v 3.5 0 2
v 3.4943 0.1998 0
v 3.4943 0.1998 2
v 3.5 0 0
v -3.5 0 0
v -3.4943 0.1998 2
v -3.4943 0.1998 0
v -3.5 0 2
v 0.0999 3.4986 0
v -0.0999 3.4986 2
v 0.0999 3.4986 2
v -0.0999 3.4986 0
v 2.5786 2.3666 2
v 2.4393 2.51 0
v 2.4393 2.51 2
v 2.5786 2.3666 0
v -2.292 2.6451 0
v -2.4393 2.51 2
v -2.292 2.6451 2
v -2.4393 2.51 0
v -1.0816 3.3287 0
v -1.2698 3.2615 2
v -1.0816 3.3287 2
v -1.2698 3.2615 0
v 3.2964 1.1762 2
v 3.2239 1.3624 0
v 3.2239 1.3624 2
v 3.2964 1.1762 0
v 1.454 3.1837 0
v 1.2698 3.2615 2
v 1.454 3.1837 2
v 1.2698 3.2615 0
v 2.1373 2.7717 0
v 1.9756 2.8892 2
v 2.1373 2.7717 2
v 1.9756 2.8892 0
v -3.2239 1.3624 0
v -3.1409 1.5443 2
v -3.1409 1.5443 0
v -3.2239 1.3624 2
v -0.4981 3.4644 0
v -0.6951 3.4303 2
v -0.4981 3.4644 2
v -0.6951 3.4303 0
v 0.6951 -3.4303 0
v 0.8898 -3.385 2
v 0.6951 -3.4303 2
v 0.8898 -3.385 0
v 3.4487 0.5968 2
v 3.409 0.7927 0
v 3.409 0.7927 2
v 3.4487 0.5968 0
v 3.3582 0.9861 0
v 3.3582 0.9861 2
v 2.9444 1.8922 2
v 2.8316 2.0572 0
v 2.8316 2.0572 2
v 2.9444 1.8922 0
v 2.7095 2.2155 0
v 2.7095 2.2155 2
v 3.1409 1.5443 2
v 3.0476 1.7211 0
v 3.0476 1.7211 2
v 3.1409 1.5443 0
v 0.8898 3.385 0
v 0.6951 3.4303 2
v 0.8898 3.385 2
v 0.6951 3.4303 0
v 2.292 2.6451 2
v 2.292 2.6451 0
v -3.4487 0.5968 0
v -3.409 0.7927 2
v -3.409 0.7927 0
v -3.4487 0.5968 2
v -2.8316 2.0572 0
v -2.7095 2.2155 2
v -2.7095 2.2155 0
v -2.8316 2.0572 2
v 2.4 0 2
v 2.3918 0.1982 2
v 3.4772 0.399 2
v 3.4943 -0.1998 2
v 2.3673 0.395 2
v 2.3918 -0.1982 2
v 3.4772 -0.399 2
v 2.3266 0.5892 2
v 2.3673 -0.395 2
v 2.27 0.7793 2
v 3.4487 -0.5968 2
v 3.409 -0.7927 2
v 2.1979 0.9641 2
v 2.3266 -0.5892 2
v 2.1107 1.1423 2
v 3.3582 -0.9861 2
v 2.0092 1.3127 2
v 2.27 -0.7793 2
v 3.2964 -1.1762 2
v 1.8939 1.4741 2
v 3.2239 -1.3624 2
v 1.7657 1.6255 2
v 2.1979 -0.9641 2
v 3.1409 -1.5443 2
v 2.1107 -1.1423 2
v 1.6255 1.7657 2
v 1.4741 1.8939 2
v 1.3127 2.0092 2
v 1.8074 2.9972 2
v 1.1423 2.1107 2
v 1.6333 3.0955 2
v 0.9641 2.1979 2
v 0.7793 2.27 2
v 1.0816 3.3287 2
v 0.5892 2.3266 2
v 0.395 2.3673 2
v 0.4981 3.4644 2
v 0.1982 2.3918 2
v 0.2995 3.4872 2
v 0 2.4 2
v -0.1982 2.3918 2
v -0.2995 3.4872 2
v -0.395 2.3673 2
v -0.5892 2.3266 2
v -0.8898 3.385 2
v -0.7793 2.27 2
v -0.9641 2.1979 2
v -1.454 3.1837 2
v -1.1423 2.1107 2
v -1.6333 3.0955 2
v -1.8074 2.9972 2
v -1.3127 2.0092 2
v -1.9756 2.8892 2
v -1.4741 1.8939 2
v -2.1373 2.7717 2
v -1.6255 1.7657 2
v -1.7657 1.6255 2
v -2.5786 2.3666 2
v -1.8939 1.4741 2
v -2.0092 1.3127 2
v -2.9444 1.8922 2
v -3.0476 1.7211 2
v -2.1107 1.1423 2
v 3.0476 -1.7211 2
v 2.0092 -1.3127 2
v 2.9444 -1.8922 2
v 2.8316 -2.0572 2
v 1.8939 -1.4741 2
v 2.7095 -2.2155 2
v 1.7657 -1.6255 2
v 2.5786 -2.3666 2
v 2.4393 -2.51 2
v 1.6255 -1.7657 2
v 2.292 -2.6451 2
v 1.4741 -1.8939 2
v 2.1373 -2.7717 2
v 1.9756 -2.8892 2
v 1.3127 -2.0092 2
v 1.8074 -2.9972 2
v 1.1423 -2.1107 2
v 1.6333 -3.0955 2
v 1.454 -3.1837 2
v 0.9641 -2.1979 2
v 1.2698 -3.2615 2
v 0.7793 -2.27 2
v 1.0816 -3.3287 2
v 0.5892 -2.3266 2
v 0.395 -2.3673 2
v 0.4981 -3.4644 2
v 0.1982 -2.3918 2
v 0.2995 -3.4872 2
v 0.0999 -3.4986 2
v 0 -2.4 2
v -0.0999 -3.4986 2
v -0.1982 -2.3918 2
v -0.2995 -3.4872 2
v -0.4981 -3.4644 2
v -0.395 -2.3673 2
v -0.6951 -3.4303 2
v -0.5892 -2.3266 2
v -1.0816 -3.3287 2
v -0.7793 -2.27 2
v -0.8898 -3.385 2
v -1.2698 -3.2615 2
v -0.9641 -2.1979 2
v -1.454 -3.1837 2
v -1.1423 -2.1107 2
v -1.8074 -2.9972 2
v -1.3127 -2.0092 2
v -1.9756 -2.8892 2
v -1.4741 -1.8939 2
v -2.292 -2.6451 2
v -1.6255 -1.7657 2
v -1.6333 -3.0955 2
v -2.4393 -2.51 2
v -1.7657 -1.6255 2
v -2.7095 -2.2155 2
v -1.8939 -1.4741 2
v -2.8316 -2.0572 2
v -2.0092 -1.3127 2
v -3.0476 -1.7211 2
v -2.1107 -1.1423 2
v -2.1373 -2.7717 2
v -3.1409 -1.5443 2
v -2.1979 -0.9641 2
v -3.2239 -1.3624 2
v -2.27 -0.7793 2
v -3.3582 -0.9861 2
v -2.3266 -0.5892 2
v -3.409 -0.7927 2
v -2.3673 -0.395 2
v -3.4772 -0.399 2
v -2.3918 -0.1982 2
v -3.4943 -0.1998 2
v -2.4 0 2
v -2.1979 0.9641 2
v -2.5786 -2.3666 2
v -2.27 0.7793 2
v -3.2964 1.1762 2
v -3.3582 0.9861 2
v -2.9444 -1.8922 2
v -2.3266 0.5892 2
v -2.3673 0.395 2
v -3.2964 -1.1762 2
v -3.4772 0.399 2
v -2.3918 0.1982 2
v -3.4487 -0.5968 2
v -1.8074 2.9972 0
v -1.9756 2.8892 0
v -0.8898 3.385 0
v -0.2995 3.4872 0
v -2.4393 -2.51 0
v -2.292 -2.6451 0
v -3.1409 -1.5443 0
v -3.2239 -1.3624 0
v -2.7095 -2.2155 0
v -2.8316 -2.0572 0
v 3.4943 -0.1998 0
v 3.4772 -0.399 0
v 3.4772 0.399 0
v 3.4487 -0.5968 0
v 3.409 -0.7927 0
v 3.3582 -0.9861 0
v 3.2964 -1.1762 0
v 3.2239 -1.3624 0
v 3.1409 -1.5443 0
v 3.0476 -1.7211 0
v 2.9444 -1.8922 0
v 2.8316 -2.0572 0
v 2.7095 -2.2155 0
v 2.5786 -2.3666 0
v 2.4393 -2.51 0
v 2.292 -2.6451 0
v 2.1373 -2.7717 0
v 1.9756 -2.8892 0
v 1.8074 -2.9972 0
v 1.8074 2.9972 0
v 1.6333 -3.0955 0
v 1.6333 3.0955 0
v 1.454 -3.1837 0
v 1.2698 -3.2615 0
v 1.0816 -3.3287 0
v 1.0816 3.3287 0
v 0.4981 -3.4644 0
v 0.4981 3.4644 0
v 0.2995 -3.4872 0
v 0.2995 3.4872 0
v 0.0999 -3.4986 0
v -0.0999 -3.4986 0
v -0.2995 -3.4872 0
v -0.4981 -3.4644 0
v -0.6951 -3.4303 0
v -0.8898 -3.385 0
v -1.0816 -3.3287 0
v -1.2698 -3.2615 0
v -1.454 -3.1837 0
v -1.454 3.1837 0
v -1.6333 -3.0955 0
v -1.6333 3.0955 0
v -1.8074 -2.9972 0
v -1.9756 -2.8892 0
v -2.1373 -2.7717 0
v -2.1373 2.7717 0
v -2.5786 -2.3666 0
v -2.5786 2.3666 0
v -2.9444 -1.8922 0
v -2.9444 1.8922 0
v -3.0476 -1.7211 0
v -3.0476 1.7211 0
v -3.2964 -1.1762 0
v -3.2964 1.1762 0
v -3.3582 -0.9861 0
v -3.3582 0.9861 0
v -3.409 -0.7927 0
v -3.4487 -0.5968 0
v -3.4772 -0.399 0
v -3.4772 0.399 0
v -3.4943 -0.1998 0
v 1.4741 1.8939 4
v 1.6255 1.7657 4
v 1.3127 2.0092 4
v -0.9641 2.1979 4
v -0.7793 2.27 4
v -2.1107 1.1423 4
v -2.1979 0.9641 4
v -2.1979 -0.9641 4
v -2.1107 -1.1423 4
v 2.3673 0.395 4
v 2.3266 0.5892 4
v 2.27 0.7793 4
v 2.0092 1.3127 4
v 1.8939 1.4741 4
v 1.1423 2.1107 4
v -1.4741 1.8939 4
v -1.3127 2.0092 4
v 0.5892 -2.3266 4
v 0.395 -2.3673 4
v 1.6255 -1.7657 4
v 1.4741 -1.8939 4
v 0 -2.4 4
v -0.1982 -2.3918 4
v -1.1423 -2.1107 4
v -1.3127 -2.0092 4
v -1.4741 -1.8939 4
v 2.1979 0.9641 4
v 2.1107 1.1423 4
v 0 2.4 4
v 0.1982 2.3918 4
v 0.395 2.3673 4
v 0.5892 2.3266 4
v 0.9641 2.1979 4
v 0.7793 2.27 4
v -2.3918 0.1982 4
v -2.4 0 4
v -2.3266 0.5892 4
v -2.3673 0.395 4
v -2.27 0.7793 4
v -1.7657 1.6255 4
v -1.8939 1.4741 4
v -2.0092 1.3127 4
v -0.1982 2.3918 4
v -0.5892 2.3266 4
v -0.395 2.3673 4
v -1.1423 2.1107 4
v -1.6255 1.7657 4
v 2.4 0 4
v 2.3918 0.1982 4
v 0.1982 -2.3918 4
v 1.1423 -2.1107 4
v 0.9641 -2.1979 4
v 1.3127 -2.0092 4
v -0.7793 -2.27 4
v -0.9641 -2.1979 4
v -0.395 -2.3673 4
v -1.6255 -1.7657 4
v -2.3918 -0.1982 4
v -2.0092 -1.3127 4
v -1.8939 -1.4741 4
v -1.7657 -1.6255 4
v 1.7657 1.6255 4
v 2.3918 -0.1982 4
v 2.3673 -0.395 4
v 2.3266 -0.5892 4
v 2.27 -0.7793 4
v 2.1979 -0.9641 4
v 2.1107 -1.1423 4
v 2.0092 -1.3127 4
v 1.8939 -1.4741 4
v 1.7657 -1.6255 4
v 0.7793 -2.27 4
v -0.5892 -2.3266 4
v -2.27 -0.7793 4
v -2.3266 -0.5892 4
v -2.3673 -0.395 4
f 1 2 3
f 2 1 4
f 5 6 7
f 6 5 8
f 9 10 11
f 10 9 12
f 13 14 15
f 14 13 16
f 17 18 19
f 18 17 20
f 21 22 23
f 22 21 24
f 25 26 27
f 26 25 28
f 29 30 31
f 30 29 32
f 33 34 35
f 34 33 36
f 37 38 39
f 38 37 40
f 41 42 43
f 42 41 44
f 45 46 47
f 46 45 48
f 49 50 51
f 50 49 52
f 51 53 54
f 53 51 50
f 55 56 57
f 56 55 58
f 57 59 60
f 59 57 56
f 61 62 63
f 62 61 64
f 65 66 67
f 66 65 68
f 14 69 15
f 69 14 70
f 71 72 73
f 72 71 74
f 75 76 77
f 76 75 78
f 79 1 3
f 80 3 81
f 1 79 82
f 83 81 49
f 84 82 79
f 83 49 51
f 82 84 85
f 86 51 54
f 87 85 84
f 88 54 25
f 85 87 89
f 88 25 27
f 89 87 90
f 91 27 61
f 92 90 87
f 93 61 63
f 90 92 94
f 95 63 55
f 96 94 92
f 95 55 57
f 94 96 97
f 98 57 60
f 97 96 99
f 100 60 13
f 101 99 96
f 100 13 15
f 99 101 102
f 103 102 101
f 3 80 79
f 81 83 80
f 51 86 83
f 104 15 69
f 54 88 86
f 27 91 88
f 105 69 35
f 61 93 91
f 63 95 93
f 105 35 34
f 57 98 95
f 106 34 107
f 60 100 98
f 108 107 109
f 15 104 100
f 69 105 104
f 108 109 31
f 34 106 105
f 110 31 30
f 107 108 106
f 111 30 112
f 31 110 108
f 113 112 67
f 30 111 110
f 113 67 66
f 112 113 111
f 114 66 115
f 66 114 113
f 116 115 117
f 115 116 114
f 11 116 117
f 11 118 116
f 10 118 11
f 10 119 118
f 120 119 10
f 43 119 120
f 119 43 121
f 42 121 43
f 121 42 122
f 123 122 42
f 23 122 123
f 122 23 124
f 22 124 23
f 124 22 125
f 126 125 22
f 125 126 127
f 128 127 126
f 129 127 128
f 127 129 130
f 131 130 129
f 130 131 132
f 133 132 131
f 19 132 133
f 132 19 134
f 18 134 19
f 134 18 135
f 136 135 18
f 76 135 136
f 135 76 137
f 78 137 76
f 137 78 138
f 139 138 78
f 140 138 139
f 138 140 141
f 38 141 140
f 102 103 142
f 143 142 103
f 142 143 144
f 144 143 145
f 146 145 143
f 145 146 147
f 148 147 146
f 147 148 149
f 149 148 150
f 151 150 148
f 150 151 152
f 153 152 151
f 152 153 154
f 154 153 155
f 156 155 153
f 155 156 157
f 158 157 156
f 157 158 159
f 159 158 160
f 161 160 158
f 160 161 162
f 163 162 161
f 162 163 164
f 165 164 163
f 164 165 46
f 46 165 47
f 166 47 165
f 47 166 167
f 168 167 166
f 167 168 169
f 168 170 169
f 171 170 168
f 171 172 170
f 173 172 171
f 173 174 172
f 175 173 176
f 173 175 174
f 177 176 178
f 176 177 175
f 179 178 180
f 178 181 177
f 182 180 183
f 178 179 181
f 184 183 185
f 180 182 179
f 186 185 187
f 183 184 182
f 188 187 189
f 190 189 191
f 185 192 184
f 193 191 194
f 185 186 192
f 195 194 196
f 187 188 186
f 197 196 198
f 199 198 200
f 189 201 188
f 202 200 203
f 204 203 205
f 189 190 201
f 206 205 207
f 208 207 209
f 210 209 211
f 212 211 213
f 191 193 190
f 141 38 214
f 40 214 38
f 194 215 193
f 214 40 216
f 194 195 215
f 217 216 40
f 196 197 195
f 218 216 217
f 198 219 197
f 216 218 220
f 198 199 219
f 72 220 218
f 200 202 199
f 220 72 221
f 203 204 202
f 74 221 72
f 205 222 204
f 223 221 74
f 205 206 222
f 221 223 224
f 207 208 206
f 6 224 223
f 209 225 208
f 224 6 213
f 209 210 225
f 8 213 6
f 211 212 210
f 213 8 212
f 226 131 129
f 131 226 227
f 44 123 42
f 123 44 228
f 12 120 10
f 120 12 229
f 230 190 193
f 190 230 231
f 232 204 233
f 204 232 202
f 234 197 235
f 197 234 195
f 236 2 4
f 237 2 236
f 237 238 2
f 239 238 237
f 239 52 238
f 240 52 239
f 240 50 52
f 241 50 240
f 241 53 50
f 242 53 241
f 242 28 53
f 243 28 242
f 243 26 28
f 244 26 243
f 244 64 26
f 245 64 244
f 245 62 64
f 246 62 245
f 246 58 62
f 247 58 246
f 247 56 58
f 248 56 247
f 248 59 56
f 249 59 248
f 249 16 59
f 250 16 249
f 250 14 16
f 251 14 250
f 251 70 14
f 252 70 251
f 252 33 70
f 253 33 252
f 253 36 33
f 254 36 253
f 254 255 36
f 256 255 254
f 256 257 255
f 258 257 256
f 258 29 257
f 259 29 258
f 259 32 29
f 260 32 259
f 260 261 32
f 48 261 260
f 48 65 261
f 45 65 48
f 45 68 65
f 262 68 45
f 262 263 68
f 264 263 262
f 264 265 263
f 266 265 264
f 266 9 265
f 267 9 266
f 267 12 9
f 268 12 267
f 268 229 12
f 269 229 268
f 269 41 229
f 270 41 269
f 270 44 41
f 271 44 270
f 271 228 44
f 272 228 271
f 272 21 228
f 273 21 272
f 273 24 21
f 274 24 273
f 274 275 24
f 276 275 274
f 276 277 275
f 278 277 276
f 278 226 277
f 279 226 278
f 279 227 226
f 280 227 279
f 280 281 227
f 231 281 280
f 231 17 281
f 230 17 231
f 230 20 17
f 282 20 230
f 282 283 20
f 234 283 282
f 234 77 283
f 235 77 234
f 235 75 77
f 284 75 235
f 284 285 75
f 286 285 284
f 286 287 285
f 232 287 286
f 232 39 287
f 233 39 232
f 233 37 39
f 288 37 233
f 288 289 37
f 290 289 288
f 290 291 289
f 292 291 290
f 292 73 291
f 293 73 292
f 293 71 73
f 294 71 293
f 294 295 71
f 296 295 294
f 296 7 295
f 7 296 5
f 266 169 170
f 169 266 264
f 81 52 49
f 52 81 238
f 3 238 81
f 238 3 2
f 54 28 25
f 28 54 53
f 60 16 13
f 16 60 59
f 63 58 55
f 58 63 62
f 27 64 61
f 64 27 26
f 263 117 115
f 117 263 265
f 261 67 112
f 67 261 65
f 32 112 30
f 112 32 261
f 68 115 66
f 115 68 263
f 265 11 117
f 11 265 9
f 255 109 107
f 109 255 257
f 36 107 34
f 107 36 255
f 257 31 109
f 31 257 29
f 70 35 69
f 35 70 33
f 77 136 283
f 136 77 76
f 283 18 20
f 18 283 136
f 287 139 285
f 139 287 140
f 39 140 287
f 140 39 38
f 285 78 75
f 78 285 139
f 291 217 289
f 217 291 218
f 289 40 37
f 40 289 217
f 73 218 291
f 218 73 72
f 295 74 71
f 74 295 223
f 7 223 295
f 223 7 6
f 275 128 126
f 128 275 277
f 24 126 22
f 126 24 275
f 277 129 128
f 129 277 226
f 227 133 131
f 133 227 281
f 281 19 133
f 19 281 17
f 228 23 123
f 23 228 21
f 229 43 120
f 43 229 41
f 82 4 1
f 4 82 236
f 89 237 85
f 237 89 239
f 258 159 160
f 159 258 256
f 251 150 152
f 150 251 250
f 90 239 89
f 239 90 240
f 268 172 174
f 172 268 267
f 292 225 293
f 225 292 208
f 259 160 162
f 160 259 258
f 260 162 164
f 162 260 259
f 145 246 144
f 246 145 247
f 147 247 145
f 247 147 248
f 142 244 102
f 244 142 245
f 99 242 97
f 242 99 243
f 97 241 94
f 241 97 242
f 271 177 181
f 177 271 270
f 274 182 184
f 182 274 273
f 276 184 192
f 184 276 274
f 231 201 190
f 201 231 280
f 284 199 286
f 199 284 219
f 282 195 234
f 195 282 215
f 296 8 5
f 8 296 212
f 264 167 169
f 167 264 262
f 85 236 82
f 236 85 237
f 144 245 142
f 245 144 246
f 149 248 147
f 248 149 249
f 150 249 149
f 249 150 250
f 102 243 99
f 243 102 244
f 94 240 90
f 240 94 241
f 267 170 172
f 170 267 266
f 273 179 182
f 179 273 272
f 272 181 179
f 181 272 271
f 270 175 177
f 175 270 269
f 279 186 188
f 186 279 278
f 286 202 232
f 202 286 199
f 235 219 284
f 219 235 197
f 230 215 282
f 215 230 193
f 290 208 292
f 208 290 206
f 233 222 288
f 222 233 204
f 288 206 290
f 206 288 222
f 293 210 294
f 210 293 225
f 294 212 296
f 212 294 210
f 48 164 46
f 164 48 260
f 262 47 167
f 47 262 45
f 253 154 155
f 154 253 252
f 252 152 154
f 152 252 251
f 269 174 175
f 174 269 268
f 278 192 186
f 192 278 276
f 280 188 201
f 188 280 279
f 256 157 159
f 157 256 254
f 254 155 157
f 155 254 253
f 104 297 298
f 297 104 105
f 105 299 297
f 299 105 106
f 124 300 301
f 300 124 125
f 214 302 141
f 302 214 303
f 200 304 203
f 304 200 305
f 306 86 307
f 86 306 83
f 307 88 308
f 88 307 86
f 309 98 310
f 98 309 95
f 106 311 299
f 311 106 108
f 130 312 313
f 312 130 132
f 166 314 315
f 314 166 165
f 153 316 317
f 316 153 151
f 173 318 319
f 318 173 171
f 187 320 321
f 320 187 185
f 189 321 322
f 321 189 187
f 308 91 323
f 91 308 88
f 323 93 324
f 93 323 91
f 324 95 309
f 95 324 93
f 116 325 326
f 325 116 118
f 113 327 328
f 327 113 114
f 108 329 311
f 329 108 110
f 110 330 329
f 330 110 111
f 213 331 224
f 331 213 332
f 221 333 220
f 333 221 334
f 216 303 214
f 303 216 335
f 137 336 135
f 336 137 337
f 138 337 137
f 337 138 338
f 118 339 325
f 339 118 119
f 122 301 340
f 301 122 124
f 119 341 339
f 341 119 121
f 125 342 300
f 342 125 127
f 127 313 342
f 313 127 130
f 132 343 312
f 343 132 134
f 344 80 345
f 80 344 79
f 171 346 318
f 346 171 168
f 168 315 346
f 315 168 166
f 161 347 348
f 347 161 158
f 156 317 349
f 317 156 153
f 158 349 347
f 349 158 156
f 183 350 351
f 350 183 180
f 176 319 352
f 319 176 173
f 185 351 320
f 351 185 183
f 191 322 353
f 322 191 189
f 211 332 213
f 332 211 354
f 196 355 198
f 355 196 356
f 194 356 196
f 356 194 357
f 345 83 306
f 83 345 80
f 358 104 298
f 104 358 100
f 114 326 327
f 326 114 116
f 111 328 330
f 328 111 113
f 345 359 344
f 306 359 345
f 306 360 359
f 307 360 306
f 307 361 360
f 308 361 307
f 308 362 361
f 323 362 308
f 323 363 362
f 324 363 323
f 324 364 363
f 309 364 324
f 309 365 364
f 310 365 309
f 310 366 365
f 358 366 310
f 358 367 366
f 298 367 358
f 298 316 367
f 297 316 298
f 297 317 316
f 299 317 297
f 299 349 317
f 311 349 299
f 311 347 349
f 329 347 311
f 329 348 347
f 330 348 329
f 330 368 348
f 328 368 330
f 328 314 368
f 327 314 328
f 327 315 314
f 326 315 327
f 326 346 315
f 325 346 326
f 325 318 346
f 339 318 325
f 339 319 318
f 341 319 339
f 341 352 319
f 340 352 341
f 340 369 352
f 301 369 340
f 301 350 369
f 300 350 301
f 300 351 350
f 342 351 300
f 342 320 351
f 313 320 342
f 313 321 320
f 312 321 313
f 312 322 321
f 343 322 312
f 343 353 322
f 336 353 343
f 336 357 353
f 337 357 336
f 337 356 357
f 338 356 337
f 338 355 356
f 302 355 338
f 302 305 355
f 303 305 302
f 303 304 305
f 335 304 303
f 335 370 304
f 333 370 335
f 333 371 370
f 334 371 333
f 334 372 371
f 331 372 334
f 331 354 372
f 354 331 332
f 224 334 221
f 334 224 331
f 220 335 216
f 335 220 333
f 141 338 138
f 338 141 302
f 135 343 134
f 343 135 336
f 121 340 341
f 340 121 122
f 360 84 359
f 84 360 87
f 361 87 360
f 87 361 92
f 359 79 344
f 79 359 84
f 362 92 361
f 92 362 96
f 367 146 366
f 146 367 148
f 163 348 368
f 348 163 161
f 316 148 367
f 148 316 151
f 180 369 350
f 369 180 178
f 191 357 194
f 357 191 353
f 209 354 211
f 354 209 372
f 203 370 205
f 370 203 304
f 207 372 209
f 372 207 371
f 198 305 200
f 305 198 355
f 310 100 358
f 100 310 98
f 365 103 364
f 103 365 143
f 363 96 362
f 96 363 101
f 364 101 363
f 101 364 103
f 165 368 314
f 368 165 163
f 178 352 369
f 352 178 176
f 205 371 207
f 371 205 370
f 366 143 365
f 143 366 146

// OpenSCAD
// file: config.scad
tipLength = 20;
tipDiameter = 7;

capGap = 0.2;
ropeWidth = 5;

// ---

capBigDiameter = tipDiameter;
capBigHeight = 2;
capSmallDiameter = ropeWidth - capGap;
capSmallHeight = 2;

tubeLength = tipLength - capBigHeight;
tubeDiameter = tipDiameter;
tubeBigHoleLength = 8;
tubeBigHoleDiameter = ropeWidth;
tubeSmallHoleLength = tubeLength - tubeBigHoleLength;
tubeSmallHoleDiameter = 2.5;

$fa = 1;
$fs = 0.2;
// main file
include <config.scad>

cylinder(d = capBigDiameter, h = capBigHeight);

translate([0, 0, capBigHeight])
cylinder(d = capSmallDiameter, h = capSmallHeight);
